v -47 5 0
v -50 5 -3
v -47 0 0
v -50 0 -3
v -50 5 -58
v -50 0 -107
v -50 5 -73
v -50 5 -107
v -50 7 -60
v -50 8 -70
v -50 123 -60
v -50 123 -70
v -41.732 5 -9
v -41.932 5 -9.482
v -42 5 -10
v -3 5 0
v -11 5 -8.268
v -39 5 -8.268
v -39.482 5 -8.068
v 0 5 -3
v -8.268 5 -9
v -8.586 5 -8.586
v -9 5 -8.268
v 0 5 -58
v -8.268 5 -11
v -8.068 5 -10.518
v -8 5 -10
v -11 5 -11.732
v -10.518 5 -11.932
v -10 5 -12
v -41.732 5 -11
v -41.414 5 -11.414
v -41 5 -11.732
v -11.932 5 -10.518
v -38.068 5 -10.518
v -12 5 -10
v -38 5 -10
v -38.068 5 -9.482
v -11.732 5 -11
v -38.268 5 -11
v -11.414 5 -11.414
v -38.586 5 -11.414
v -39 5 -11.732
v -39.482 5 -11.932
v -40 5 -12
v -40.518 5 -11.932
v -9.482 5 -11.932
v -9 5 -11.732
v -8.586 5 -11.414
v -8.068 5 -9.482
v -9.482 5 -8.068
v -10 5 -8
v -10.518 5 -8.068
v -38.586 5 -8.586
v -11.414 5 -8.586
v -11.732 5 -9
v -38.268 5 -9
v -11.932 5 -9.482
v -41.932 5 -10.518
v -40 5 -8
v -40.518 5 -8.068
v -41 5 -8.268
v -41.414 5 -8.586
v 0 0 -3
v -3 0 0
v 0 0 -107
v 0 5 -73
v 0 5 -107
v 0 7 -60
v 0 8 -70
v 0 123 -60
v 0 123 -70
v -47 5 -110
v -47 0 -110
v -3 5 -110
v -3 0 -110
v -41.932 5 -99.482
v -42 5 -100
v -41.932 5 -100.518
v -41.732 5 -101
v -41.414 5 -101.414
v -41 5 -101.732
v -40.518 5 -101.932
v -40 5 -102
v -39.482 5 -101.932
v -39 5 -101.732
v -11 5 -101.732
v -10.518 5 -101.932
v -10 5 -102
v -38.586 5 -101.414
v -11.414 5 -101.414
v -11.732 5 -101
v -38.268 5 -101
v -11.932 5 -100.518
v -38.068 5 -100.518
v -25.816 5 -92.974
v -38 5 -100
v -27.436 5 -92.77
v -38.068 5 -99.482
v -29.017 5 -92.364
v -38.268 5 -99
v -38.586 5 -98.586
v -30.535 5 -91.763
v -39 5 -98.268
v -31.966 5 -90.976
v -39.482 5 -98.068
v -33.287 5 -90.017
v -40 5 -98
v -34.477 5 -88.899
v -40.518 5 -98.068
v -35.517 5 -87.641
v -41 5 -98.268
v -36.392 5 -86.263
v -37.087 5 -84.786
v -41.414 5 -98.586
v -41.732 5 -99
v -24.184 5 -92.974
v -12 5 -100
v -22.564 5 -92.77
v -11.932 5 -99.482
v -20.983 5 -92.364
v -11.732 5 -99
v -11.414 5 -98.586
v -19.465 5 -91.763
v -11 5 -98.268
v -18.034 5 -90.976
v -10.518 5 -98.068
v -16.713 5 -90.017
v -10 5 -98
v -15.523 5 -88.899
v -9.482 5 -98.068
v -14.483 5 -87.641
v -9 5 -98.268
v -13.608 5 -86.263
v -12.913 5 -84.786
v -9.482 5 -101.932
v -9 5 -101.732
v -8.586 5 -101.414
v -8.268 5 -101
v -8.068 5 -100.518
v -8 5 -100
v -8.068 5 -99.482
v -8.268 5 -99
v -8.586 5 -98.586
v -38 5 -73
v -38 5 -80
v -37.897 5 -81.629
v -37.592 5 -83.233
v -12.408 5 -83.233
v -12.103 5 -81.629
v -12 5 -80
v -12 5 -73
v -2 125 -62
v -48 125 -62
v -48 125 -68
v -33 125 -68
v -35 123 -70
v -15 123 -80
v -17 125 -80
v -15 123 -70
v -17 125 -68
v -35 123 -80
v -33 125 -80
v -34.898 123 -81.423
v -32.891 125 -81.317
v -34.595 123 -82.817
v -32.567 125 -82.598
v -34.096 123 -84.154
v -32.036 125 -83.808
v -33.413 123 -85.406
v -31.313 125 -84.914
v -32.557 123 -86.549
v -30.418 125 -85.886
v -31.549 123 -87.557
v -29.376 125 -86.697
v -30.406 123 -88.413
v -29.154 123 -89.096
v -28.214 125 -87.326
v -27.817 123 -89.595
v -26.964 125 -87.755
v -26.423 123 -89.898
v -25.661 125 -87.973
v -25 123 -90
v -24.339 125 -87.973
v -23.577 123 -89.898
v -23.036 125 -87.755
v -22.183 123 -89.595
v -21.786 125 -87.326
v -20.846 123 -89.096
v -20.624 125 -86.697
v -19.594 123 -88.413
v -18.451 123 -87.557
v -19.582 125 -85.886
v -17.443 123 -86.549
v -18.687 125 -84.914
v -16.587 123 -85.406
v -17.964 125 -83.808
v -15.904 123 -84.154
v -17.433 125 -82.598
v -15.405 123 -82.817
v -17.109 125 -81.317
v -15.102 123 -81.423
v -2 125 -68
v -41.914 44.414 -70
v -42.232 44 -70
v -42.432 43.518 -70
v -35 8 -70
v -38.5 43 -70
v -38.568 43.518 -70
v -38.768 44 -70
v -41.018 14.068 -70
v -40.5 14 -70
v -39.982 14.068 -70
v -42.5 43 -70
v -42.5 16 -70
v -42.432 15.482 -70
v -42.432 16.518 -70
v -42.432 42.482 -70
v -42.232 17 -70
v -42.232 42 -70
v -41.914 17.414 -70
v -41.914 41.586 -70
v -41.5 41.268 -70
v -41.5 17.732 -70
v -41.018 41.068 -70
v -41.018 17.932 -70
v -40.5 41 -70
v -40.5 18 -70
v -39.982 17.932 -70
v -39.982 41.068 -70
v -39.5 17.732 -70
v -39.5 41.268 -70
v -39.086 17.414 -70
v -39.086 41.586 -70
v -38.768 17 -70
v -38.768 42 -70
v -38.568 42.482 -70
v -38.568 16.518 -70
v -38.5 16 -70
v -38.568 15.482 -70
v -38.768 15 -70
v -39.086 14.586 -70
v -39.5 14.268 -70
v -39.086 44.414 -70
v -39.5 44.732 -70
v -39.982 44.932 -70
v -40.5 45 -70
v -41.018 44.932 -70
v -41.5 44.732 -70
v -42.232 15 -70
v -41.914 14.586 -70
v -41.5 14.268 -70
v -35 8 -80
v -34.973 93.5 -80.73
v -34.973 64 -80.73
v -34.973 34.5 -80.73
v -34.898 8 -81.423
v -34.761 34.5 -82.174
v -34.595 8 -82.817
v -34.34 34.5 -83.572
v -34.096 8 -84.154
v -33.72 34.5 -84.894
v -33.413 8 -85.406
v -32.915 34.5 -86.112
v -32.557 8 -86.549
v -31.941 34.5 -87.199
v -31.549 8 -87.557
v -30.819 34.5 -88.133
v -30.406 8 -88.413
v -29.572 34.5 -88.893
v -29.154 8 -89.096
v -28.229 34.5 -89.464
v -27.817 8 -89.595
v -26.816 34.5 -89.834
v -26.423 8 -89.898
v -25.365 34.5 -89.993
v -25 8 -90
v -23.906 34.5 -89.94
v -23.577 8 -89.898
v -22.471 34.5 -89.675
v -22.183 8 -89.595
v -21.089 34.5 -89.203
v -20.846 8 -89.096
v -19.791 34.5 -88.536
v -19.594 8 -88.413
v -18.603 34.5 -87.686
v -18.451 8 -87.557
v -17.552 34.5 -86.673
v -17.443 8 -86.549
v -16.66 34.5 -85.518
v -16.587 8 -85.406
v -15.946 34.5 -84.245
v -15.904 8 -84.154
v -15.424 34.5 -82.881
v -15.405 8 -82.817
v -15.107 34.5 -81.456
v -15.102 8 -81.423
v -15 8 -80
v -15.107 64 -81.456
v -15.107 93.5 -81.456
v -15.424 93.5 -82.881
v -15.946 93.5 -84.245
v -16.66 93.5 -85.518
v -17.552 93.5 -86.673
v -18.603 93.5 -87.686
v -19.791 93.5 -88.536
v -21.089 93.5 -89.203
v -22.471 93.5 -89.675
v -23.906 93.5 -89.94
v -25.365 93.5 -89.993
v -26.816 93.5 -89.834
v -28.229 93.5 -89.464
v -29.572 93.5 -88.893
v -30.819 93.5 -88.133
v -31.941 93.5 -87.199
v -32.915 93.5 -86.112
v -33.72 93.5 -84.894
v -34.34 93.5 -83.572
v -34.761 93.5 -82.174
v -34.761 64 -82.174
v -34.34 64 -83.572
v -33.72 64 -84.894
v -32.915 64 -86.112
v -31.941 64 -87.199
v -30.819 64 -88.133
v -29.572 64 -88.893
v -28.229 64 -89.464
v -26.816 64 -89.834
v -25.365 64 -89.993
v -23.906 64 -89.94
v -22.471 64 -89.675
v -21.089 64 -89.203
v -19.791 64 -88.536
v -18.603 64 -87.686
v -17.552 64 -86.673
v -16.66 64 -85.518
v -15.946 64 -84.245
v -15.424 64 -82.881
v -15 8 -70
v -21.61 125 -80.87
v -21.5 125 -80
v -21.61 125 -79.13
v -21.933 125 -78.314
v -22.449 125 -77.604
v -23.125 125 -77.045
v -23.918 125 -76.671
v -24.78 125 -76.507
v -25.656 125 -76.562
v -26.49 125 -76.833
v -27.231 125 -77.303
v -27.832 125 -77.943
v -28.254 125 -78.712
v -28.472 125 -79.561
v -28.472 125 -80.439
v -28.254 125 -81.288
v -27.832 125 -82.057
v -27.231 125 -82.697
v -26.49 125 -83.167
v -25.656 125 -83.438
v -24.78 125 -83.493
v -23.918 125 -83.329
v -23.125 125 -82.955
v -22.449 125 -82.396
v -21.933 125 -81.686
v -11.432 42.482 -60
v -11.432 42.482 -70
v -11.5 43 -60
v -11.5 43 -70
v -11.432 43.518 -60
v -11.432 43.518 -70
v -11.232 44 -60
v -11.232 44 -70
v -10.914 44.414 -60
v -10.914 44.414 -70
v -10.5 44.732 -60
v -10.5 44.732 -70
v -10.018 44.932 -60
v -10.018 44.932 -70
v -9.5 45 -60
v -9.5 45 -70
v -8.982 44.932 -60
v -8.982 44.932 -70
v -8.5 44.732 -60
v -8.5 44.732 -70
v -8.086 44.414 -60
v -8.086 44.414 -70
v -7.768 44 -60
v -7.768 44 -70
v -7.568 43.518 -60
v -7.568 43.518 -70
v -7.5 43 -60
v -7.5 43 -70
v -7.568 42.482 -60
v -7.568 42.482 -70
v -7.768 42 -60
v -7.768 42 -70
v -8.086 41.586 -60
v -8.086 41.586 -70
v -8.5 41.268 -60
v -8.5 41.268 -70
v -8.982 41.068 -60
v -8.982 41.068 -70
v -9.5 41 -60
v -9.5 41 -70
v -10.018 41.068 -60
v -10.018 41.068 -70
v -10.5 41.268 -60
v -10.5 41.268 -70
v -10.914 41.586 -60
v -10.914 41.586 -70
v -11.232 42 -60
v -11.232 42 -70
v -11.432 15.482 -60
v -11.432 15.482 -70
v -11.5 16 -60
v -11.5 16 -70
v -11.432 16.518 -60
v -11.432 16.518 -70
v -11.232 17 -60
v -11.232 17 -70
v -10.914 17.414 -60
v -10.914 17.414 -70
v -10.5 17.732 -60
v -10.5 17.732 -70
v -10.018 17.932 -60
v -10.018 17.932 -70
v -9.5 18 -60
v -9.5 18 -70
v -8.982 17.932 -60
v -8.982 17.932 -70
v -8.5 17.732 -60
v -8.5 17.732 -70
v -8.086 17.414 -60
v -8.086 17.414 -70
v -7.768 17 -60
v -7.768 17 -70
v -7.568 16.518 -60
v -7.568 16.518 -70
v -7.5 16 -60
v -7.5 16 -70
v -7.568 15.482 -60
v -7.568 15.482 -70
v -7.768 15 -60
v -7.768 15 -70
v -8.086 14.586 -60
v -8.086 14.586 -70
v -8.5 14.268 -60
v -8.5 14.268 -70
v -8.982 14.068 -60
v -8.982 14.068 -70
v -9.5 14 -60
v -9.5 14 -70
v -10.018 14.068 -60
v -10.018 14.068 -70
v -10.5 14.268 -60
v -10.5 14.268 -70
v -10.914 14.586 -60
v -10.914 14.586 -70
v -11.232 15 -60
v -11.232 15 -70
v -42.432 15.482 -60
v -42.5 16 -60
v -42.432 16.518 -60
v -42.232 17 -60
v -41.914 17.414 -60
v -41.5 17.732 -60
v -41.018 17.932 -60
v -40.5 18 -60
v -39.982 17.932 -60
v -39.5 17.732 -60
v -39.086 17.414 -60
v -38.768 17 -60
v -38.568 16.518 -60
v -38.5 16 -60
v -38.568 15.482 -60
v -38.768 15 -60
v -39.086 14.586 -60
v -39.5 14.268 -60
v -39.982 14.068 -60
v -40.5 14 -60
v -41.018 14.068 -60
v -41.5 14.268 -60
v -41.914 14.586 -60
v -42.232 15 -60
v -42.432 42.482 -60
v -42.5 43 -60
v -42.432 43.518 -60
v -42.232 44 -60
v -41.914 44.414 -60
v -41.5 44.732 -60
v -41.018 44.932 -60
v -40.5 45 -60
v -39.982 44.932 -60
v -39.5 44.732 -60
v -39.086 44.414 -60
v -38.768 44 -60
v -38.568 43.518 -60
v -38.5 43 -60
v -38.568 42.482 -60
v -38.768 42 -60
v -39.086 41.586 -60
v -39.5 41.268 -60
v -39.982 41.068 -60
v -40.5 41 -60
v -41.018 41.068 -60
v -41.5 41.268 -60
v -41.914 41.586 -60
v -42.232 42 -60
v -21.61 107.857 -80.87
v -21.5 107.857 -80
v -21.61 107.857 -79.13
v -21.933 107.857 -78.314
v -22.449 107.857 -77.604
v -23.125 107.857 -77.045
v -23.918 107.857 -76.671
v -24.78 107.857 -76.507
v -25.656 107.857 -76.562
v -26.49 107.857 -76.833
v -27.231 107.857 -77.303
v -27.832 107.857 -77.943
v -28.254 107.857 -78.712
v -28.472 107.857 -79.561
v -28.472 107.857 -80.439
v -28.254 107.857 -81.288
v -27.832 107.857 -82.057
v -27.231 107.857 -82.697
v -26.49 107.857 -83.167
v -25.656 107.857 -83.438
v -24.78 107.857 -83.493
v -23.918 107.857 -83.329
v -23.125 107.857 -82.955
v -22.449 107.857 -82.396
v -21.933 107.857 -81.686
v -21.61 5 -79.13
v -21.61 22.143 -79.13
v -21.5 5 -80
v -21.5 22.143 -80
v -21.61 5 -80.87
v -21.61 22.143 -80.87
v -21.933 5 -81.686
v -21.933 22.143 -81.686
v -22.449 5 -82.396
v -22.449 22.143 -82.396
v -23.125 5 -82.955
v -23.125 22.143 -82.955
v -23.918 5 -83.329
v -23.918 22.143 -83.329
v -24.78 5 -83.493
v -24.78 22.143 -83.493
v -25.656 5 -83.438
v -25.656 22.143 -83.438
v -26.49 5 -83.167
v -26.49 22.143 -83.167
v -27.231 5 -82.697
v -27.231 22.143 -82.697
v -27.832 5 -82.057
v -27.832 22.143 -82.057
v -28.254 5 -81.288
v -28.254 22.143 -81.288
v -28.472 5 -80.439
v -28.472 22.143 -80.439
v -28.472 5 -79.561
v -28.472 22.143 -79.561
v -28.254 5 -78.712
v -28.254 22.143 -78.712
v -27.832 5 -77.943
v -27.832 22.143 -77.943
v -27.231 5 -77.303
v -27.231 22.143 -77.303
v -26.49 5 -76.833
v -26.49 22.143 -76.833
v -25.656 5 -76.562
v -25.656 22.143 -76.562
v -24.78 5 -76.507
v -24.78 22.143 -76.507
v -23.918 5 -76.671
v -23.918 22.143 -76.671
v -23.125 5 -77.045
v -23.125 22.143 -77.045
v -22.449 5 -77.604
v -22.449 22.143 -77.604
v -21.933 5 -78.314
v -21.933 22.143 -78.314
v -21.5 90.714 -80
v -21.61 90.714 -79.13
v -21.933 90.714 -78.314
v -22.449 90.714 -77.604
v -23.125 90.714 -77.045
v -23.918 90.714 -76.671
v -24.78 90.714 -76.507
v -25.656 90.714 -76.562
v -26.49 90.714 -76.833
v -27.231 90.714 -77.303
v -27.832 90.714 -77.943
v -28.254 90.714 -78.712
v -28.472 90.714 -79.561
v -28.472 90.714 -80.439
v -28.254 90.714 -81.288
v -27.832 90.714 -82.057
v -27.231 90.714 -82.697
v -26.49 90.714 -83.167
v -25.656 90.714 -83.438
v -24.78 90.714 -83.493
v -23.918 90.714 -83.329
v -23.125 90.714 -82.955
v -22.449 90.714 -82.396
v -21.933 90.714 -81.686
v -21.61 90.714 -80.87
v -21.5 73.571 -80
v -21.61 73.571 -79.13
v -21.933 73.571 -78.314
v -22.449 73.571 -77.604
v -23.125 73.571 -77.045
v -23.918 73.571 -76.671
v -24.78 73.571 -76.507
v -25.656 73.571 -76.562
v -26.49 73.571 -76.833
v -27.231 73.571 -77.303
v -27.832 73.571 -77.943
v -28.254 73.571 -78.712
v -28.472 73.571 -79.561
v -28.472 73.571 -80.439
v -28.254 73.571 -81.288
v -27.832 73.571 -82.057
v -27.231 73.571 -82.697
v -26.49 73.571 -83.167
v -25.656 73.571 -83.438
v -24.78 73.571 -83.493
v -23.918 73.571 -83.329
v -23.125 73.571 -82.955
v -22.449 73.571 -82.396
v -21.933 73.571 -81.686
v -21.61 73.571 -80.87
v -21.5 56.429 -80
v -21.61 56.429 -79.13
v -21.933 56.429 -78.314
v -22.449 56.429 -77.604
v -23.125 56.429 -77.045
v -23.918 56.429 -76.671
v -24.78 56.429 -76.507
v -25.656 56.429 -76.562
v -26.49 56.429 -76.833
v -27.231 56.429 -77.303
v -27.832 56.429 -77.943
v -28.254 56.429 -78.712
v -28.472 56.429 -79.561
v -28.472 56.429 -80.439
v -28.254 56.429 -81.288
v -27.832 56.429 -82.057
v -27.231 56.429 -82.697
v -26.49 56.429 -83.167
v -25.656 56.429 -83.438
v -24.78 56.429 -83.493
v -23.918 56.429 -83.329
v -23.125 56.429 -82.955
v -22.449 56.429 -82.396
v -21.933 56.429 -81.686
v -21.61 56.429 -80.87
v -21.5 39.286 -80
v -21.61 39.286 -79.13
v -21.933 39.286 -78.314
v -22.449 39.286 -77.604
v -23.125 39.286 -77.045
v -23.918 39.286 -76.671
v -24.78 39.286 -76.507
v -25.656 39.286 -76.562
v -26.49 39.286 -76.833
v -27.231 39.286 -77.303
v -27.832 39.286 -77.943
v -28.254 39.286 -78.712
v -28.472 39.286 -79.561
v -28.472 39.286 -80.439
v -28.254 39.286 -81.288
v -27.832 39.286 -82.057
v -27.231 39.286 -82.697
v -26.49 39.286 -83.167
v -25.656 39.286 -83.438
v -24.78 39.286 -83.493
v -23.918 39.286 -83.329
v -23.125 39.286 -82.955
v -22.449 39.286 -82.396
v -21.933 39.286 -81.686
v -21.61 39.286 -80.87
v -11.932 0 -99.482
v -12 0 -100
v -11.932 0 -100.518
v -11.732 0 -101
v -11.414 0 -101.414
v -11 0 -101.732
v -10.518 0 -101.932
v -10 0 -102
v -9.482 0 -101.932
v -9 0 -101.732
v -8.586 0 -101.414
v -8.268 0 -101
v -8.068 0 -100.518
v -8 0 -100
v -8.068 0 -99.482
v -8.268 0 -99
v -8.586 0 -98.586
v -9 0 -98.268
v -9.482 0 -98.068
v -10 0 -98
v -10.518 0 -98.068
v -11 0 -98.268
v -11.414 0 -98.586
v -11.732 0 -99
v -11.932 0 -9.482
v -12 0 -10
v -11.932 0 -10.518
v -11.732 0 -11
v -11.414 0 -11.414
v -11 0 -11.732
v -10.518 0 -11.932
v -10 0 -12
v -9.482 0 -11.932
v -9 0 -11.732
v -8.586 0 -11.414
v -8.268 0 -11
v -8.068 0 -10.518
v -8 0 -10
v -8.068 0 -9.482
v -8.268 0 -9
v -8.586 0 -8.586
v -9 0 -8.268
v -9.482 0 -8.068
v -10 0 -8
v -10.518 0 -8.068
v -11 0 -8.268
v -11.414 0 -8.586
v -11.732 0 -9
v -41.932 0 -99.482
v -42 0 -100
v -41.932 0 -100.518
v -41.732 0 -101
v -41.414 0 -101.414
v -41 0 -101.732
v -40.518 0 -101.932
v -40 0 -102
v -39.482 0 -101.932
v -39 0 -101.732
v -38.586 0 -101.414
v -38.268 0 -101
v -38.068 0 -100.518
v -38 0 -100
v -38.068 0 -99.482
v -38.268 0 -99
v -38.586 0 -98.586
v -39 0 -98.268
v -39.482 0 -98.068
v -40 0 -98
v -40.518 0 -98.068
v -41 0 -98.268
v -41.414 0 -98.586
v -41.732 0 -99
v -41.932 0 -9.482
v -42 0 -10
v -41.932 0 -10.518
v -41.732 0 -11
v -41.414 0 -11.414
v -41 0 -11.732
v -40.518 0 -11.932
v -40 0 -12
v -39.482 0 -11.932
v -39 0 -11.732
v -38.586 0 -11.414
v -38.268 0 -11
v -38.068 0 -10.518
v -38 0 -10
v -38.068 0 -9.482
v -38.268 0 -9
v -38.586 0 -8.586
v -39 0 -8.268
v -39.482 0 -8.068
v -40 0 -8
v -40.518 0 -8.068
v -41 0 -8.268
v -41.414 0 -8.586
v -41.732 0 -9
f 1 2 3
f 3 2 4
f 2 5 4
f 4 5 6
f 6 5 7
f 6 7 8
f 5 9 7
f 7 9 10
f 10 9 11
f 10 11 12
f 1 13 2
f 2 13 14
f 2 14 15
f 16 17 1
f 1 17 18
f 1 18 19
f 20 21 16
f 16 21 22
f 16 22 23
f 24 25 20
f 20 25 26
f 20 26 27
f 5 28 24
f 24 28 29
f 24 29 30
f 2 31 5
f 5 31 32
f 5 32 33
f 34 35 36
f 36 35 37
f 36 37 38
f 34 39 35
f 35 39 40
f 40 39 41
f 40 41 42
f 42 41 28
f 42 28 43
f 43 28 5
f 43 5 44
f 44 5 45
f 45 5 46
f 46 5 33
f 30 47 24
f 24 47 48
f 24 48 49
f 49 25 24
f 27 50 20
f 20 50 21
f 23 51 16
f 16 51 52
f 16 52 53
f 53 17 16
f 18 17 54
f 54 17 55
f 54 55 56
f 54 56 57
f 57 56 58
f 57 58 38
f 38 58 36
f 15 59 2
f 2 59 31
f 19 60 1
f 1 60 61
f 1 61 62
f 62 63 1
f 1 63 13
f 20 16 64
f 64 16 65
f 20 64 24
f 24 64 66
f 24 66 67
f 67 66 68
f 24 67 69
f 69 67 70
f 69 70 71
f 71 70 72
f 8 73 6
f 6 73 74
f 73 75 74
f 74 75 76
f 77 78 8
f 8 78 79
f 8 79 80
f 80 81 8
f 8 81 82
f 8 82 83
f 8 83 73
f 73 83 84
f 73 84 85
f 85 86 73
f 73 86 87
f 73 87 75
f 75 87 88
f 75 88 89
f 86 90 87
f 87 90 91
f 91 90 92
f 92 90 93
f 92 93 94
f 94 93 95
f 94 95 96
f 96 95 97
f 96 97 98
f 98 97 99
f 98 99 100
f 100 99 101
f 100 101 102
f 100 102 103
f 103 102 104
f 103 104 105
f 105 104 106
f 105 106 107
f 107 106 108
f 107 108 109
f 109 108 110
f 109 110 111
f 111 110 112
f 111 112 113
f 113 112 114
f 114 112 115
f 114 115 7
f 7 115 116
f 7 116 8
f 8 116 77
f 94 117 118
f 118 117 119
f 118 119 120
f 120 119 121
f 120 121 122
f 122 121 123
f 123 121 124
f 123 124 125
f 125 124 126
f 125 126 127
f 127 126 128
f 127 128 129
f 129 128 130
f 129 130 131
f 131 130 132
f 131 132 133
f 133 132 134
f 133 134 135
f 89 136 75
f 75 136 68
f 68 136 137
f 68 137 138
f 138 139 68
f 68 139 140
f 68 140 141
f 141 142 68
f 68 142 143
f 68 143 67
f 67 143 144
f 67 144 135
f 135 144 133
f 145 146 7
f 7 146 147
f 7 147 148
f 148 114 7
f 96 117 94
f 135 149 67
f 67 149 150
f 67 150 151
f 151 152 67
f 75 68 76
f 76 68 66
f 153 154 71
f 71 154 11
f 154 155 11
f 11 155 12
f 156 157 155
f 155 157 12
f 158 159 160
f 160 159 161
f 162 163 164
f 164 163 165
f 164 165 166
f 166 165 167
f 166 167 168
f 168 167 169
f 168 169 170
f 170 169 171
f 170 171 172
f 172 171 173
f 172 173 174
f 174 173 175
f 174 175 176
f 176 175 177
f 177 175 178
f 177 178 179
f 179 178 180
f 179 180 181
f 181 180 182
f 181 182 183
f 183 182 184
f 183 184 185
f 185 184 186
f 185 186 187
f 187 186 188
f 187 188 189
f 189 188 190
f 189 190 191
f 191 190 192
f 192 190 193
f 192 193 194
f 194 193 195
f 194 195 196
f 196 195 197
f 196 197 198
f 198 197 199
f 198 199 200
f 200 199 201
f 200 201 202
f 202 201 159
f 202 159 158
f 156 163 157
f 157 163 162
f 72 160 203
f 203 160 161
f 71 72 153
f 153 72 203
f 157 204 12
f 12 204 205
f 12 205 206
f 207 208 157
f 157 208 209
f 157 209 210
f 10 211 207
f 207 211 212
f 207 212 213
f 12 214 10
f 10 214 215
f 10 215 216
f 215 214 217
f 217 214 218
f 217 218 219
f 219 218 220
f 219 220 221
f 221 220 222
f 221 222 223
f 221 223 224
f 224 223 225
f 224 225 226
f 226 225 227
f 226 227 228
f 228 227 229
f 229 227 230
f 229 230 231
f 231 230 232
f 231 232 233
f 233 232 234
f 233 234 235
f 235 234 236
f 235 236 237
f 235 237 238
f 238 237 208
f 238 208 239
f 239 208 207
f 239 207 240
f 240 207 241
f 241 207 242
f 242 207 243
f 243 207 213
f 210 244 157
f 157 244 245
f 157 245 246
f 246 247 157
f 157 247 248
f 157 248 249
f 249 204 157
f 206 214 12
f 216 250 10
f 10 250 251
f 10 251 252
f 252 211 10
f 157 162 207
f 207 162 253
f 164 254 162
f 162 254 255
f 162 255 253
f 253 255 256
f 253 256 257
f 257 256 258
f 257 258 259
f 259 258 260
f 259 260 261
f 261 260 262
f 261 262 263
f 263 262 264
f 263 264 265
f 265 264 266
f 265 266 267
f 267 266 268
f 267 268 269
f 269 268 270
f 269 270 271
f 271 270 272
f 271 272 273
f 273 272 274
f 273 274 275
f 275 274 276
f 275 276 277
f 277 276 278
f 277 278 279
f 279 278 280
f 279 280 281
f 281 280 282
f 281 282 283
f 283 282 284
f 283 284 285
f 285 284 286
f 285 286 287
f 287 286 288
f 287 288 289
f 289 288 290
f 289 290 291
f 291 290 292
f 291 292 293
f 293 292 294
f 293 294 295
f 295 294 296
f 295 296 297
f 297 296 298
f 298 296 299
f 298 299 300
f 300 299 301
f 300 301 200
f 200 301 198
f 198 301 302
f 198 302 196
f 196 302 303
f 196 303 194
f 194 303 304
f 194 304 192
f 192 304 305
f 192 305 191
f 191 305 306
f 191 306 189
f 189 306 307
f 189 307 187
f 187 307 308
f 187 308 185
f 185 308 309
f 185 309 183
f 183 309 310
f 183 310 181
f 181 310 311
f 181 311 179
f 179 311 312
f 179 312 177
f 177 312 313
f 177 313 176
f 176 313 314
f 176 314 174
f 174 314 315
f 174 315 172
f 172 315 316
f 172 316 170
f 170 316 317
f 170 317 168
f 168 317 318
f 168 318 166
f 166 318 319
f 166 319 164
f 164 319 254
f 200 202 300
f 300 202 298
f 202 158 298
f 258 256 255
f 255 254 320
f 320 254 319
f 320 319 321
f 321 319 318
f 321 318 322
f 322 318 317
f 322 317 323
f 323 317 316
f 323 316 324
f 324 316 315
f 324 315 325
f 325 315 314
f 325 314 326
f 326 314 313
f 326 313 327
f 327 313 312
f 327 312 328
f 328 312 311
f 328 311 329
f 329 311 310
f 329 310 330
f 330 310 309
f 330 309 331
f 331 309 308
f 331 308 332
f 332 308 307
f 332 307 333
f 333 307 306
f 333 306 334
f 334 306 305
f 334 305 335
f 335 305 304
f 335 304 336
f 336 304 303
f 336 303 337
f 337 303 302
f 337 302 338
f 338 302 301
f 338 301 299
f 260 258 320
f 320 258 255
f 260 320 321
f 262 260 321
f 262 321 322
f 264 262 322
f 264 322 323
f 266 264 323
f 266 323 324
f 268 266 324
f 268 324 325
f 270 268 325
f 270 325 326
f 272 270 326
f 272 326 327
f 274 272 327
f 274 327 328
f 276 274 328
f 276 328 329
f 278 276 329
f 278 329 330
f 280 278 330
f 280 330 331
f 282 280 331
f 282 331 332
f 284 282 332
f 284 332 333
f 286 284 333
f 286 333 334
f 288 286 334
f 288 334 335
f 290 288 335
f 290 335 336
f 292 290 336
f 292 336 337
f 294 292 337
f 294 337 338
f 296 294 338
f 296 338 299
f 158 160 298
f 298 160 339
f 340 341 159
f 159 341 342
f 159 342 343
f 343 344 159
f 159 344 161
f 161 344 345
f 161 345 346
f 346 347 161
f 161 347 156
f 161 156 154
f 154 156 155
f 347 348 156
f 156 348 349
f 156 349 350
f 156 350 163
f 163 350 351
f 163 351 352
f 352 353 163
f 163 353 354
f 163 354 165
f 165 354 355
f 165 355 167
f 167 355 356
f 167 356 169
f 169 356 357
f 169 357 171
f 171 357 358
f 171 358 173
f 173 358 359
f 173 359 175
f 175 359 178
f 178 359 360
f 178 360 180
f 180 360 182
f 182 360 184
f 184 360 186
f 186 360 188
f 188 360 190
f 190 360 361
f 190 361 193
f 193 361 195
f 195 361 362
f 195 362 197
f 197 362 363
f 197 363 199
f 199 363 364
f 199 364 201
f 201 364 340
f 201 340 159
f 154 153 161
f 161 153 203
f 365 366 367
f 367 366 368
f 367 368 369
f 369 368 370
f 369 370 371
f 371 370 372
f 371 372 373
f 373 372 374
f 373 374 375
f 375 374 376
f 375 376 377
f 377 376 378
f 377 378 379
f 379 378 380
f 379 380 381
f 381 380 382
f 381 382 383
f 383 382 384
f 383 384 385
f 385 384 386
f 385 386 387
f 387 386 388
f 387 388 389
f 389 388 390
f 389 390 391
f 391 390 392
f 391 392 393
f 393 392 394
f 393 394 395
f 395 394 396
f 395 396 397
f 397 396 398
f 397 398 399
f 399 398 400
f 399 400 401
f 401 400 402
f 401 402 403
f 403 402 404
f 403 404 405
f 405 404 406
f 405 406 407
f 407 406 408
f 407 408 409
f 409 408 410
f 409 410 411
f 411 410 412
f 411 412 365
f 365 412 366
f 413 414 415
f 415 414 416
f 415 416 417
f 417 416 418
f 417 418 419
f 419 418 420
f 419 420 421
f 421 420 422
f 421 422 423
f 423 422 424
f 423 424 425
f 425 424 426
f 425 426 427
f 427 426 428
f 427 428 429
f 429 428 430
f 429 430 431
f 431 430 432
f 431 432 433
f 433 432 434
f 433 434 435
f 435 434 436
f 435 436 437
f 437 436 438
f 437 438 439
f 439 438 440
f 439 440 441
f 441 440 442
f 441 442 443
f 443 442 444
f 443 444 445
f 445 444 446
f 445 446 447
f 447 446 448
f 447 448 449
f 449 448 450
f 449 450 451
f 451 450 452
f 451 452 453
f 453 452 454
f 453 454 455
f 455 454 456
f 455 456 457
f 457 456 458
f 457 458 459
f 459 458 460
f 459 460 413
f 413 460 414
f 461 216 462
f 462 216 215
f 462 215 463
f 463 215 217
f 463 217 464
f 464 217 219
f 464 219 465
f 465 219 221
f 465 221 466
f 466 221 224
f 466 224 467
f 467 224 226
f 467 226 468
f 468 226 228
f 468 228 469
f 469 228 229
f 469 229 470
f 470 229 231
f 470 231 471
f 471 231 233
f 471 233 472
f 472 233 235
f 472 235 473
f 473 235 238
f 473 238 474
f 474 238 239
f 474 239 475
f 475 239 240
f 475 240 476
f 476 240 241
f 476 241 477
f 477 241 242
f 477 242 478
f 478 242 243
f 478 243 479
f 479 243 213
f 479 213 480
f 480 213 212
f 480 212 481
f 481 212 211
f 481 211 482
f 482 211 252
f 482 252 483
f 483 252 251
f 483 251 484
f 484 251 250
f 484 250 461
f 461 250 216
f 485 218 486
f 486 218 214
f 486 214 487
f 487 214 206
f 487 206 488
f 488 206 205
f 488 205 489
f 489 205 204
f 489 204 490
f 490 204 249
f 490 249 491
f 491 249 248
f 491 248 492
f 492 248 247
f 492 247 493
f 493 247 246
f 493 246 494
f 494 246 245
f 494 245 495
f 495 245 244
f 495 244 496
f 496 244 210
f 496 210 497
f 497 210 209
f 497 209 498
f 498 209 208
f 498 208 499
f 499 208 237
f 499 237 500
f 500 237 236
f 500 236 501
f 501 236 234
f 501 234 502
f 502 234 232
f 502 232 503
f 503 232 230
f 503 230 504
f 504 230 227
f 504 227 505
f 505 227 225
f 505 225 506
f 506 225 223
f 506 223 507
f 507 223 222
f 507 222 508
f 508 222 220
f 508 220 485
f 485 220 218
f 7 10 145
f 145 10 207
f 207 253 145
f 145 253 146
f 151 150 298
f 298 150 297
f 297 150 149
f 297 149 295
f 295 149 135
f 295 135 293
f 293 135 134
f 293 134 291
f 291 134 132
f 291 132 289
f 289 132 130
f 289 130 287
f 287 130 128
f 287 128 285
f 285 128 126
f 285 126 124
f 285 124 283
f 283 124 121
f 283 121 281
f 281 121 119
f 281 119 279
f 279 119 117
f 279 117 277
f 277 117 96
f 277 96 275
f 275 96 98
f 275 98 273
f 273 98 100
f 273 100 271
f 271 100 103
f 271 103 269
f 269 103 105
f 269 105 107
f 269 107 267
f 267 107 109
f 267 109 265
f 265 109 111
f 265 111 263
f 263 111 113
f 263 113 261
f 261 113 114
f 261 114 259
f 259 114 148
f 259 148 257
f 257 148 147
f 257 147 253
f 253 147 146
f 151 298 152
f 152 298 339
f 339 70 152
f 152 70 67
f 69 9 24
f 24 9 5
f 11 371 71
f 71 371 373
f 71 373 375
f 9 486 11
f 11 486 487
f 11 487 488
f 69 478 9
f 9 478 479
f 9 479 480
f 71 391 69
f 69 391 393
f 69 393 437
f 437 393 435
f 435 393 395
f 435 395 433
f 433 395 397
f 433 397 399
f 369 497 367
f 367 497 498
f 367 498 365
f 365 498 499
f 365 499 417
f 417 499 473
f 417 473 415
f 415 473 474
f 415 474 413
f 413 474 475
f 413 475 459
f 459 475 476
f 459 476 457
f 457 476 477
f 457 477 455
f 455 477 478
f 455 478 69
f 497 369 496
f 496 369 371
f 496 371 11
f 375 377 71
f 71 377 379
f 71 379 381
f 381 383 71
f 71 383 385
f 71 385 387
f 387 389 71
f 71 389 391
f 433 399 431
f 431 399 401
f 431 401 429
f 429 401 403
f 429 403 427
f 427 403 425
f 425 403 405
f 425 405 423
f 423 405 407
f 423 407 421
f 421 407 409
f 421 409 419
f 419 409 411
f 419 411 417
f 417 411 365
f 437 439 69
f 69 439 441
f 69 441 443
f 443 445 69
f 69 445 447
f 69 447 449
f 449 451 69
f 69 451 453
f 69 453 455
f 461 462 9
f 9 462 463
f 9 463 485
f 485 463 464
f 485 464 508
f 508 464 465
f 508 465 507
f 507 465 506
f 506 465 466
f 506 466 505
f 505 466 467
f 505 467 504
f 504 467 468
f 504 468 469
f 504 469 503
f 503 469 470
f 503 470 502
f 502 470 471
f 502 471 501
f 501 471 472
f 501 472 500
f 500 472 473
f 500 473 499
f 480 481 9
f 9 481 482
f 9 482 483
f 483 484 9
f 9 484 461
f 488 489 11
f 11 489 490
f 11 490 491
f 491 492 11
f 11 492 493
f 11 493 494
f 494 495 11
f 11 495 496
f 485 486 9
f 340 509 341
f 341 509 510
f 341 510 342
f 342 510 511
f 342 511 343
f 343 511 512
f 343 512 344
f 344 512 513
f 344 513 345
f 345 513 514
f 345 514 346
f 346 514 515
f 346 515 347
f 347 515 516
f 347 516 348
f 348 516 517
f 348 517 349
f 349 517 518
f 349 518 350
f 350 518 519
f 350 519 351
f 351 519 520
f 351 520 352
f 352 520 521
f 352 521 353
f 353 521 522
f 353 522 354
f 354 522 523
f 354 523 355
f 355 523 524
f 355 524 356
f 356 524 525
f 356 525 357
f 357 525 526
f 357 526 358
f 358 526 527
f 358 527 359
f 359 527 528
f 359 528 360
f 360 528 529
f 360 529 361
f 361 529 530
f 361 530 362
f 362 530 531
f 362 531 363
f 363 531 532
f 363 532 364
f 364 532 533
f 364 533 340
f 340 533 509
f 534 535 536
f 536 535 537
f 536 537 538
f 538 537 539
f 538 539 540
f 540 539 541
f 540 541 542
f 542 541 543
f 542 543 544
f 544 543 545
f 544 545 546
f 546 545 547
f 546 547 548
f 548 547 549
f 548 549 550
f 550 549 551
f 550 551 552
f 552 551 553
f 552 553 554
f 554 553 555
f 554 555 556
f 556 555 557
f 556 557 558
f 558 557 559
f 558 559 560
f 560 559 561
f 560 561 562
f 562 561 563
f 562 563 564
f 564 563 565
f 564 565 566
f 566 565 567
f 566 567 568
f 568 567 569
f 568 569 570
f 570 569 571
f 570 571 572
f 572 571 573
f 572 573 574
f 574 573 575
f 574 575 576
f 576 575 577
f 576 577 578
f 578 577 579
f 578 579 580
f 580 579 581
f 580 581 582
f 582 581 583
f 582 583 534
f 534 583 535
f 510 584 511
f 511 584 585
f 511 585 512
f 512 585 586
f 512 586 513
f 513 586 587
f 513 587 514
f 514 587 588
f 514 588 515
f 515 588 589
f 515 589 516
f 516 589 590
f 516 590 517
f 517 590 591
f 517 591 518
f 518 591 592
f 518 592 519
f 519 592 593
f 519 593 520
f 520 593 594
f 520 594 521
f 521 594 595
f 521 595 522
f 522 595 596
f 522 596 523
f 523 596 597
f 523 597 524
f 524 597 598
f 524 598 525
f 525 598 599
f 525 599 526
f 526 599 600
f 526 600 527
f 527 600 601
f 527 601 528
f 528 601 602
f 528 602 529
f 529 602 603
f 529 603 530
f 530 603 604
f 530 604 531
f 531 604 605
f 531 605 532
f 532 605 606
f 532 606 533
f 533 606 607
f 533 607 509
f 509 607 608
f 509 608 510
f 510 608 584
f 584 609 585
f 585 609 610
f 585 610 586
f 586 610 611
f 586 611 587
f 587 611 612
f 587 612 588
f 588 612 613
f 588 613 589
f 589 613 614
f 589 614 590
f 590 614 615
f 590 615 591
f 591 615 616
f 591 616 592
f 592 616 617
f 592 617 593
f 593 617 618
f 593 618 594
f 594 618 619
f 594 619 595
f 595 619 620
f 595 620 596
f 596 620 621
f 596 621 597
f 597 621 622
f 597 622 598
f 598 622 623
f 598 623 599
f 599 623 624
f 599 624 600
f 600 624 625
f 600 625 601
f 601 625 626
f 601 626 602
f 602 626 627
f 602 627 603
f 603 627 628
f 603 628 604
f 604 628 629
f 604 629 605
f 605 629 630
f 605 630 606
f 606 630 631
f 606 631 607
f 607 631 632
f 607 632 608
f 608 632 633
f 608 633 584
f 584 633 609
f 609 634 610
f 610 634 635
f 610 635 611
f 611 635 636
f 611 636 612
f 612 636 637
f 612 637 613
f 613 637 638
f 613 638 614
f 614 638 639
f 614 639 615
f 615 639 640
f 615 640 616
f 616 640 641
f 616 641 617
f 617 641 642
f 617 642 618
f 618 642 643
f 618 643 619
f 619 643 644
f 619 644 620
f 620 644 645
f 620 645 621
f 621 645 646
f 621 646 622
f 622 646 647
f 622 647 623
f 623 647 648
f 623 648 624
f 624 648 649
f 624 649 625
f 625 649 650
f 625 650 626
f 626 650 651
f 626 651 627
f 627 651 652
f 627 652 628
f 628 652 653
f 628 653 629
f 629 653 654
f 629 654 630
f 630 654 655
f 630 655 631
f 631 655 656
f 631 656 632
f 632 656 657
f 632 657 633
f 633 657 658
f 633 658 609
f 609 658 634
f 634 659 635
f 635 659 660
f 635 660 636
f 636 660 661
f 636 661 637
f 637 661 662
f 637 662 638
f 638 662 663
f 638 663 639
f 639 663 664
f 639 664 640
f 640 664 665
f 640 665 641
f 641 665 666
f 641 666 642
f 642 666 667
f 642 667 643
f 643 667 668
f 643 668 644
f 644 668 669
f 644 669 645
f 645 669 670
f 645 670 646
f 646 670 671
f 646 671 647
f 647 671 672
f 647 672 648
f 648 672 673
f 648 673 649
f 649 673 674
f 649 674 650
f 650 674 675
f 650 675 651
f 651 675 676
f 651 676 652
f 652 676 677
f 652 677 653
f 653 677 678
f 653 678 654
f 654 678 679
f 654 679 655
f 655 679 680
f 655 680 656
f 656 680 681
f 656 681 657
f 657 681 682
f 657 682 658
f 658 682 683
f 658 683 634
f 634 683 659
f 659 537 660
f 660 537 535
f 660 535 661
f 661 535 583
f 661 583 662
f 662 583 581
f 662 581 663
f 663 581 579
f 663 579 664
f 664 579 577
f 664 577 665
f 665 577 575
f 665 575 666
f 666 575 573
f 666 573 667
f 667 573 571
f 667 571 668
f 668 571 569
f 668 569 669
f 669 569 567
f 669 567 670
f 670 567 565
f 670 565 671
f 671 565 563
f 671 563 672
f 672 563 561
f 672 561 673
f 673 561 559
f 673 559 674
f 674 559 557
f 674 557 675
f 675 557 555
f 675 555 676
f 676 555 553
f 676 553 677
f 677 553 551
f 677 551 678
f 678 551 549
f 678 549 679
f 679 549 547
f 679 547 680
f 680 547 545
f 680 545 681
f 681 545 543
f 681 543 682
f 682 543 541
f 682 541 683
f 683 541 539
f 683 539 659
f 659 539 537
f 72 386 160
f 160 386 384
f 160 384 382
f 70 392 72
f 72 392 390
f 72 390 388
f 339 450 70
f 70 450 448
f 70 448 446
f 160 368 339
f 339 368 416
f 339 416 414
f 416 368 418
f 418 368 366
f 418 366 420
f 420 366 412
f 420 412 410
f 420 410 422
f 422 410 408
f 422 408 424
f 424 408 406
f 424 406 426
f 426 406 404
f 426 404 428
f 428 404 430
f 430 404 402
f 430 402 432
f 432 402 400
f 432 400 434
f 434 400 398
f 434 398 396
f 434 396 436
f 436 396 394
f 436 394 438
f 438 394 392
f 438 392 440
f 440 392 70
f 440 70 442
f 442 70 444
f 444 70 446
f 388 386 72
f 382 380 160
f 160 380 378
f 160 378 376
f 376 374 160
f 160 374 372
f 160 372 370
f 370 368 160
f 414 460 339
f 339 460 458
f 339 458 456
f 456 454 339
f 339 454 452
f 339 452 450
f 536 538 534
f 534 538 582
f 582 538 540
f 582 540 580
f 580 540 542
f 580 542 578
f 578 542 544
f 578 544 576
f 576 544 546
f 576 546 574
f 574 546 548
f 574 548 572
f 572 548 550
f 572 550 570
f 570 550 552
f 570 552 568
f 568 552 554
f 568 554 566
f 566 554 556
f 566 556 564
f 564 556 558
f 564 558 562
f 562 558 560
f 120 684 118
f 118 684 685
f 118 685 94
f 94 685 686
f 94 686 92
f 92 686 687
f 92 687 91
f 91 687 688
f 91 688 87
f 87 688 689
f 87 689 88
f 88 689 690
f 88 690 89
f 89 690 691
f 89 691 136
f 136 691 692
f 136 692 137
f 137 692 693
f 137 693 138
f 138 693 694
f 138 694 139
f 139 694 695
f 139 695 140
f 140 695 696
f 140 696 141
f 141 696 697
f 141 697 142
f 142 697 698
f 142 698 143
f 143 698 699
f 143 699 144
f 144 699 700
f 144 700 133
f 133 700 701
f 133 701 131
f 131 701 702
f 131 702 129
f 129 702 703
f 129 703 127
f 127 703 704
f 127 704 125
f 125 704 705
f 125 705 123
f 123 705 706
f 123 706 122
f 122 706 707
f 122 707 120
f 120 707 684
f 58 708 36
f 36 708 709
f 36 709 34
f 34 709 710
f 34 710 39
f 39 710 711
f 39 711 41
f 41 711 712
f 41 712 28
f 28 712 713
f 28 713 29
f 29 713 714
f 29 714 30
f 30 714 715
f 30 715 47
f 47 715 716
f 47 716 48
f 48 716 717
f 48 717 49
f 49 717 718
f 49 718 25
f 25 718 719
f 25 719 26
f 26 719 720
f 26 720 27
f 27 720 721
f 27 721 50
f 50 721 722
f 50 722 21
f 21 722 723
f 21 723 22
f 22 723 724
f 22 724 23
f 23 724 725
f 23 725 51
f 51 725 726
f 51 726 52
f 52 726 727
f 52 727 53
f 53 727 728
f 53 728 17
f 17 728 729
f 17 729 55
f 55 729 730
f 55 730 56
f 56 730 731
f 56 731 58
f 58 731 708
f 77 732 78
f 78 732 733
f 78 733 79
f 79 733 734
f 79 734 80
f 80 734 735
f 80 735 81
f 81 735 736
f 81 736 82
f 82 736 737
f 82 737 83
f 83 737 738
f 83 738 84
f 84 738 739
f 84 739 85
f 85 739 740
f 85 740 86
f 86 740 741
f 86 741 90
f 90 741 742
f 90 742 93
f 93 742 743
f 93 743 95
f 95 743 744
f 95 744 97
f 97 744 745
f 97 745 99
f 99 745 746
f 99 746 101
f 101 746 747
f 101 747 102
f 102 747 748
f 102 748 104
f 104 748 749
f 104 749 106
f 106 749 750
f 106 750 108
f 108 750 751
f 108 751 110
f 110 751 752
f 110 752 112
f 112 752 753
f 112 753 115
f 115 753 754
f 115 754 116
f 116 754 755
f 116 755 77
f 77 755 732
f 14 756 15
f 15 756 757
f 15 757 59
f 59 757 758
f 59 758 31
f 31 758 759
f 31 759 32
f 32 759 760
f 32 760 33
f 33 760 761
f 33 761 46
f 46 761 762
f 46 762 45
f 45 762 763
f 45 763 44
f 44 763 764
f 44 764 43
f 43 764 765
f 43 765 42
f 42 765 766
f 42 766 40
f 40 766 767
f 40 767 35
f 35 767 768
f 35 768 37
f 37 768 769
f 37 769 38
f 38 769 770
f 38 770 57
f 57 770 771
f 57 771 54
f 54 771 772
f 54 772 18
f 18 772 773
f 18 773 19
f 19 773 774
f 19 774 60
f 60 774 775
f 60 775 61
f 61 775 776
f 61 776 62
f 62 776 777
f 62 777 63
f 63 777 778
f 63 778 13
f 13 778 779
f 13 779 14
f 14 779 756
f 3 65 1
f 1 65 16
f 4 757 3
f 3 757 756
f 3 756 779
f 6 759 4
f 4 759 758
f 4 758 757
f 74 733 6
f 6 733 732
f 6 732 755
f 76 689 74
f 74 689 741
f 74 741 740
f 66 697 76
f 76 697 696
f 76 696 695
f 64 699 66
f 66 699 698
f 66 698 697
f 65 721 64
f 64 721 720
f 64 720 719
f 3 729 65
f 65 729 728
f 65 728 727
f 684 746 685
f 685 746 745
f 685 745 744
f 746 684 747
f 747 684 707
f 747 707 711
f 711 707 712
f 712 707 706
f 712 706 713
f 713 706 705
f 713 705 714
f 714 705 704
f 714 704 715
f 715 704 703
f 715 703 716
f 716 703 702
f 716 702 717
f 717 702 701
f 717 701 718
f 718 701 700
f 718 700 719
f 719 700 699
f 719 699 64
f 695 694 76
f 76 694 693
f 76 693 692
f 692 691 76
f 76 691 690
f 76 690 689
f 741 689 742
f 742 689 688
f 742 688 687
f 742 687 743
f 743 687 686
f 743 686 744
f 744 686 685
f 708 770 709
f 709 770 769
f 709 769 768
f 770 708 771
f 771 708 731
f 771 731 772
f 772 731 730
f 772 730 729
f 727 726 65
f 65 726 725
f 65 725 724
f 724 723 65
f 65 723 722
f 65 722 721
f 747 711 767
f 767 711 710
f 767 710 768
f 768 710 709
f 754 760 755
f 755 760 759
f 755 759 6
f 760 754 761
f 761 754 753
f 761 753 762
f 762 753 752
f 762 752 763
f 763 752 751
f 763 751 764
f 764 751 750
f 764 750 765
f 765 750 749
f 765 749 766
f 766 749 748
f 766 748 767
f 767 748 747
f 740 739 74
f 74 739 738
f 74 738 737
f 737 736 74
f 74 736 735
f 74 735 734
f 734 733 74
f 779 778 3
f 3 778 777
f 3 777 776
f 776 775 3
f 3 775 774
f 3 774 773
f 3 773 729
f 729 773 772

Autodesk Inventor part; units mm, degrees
ref_plane "YZ Plane" through (0, 0, 0) normal (1, 0, 0) x (0, 1, 0)
ref_plane "XZ Plane" through (0, 0, 0) normal (0, 1, 0) x (-1, 0, 0)
ref_plane "XY Plane" through (0, 0, 0) normal (0, 0, 1) x (1, 0, 0)
sketch "Sketch1" plane through (0, 0, 0) normal (0, 1, 0) x (-1, 0, 0)
  point P0 (0, 0)
sketch "Sketch2" plane through (0, 0, 0) normal (0, 1, 0) x (-1, 0, 0)
  line L0 (0, 0) -> (50, 0)
  line L1 (50, 0) -> (50, -110)
  line L2 (50, -110) -> (0, -110)
  line L3 (0, -110) -> (0, 0)
  line L4 (25, 0) -> (25, -110) construction
  line L5 (50, -55) -> (0, -55) construction
  circle A0 centre (40, -10) radius 2
  circle A1 centre (40, -100) radius 2
  circle A2 centre (10, -10) radius 2
  circle A3 centre (10, -100) radius 2
  dimension "d0" = 50
  dimension "d1" = 110
  dimension "d2" = 4
  dimension "d3" = 10
  dimension "d4" = 10
  dimension "d7" = 90
  dimension "d10" = 30
extrude "Extrusion1" add sketch "Sketch2" along normal blind 5
sketch "Sketch3" plane through (0, 5, 0) normal (0, 1, 0) x (1, 0, 0)
  line L0 (-50, 110) -> (-50, 0) projected
  line L1 (0, 60) -> (-50, 60)
  line L2 (-50, 60) -> (-50, 70)
  line L3 (0, 70) -> (0, 60)
  line L4 (-50, 0) -> (0, 0) projected
  line L5 (0, 110) -> (-50, 110) construction
  line L6 (0, 0) -> (0, 110) projected
  circle A0 centre (-25, 80) radius 3.5
  arc A1 (-15, 80) -> (-35, 80) centre (-25, 80) ccw
  line L7 (-35, 80) -> (-35, 70)
  line L8 (-15, 80) -> (-15, 70)
  line L9 (-50, 70) -> (-35, 70)
  line L10 (-15, 70) -> (0, 70)
  dimension "d15" = 60
  dimension "d17" = 7
  dimension "d18" = 30
extrude "Extrusion2" add sketch "Sketch3" along normal blind 120 contours L9 L7 A1 L8 L10 L3 L1 L0
chamfer "Chamfer1" distance 2 angle 45 1 edges at (-25, 5, -60)
chamfer "Chamfer2" distance 3 angle 45 5 edges at (-7.5, 5, -70) (-42.5, 5, -70) (-25, 5, -90) (-15, 5, -75) (-35, 5, -75)
sketch "Sketch4" plane through (0, 125, -70) normal (0, 0, -1) x (-1, 0, 0)
  line L0 (0, 0) -> (15, 0) projected
  line L1 (15, -117) -> (0, -117) projected
  line L2 (35, 0) -> (50, 0) projected
  line L3 (50, -117) -> (35, -117) projected
  circle A0 centre (9.5, -109) radius 2
  circle A1 centre (40.5, -109) radius 2
  circle A2 centre (9.5, -82) radius 2
  circle A3 centre (40.5, -82) radius 2
  line L4 (0, -117) -> (0, 0) projected
  line L5 (50, -117) -> (50, 0) projected
  line L6 (0, -120) -> (50, -120) projected
  point P0 (0, -125)
  dimension "d27" = 4
  dimension "d29" = 4
  dimension "d31" = 4
  dimension "d32" = 4
  dimension "d33" = 27
  dimension "d34" = 27
  dimension "d35" = 9.5
  dimension "d36" = 9.5
  dimension "d37" = 9.5
  dimension "d38" = 9.5
  dimension "d40" = 11
  dimension "d41" = 11
extrude "Extrusion3" cut sketch "Sketch4" against normal blind 10
chamfer "Chamfer3" distance 2 angle 45 8 edges at (-25, 125, -90) (-35, 125, -75) (-15, 125, -75) (-7.5, 125, -70) (0, 125, -65) (-25, 125, -60) (-42.5, 125, -70) (-50, 125, -65)
chamfer "Chamfer4" distance 3 angle 45 4 edges at (0, 2.5, -110) (-50, 2.5, -110) (0, 2.5, 0) (-50, 2.5, 0)
